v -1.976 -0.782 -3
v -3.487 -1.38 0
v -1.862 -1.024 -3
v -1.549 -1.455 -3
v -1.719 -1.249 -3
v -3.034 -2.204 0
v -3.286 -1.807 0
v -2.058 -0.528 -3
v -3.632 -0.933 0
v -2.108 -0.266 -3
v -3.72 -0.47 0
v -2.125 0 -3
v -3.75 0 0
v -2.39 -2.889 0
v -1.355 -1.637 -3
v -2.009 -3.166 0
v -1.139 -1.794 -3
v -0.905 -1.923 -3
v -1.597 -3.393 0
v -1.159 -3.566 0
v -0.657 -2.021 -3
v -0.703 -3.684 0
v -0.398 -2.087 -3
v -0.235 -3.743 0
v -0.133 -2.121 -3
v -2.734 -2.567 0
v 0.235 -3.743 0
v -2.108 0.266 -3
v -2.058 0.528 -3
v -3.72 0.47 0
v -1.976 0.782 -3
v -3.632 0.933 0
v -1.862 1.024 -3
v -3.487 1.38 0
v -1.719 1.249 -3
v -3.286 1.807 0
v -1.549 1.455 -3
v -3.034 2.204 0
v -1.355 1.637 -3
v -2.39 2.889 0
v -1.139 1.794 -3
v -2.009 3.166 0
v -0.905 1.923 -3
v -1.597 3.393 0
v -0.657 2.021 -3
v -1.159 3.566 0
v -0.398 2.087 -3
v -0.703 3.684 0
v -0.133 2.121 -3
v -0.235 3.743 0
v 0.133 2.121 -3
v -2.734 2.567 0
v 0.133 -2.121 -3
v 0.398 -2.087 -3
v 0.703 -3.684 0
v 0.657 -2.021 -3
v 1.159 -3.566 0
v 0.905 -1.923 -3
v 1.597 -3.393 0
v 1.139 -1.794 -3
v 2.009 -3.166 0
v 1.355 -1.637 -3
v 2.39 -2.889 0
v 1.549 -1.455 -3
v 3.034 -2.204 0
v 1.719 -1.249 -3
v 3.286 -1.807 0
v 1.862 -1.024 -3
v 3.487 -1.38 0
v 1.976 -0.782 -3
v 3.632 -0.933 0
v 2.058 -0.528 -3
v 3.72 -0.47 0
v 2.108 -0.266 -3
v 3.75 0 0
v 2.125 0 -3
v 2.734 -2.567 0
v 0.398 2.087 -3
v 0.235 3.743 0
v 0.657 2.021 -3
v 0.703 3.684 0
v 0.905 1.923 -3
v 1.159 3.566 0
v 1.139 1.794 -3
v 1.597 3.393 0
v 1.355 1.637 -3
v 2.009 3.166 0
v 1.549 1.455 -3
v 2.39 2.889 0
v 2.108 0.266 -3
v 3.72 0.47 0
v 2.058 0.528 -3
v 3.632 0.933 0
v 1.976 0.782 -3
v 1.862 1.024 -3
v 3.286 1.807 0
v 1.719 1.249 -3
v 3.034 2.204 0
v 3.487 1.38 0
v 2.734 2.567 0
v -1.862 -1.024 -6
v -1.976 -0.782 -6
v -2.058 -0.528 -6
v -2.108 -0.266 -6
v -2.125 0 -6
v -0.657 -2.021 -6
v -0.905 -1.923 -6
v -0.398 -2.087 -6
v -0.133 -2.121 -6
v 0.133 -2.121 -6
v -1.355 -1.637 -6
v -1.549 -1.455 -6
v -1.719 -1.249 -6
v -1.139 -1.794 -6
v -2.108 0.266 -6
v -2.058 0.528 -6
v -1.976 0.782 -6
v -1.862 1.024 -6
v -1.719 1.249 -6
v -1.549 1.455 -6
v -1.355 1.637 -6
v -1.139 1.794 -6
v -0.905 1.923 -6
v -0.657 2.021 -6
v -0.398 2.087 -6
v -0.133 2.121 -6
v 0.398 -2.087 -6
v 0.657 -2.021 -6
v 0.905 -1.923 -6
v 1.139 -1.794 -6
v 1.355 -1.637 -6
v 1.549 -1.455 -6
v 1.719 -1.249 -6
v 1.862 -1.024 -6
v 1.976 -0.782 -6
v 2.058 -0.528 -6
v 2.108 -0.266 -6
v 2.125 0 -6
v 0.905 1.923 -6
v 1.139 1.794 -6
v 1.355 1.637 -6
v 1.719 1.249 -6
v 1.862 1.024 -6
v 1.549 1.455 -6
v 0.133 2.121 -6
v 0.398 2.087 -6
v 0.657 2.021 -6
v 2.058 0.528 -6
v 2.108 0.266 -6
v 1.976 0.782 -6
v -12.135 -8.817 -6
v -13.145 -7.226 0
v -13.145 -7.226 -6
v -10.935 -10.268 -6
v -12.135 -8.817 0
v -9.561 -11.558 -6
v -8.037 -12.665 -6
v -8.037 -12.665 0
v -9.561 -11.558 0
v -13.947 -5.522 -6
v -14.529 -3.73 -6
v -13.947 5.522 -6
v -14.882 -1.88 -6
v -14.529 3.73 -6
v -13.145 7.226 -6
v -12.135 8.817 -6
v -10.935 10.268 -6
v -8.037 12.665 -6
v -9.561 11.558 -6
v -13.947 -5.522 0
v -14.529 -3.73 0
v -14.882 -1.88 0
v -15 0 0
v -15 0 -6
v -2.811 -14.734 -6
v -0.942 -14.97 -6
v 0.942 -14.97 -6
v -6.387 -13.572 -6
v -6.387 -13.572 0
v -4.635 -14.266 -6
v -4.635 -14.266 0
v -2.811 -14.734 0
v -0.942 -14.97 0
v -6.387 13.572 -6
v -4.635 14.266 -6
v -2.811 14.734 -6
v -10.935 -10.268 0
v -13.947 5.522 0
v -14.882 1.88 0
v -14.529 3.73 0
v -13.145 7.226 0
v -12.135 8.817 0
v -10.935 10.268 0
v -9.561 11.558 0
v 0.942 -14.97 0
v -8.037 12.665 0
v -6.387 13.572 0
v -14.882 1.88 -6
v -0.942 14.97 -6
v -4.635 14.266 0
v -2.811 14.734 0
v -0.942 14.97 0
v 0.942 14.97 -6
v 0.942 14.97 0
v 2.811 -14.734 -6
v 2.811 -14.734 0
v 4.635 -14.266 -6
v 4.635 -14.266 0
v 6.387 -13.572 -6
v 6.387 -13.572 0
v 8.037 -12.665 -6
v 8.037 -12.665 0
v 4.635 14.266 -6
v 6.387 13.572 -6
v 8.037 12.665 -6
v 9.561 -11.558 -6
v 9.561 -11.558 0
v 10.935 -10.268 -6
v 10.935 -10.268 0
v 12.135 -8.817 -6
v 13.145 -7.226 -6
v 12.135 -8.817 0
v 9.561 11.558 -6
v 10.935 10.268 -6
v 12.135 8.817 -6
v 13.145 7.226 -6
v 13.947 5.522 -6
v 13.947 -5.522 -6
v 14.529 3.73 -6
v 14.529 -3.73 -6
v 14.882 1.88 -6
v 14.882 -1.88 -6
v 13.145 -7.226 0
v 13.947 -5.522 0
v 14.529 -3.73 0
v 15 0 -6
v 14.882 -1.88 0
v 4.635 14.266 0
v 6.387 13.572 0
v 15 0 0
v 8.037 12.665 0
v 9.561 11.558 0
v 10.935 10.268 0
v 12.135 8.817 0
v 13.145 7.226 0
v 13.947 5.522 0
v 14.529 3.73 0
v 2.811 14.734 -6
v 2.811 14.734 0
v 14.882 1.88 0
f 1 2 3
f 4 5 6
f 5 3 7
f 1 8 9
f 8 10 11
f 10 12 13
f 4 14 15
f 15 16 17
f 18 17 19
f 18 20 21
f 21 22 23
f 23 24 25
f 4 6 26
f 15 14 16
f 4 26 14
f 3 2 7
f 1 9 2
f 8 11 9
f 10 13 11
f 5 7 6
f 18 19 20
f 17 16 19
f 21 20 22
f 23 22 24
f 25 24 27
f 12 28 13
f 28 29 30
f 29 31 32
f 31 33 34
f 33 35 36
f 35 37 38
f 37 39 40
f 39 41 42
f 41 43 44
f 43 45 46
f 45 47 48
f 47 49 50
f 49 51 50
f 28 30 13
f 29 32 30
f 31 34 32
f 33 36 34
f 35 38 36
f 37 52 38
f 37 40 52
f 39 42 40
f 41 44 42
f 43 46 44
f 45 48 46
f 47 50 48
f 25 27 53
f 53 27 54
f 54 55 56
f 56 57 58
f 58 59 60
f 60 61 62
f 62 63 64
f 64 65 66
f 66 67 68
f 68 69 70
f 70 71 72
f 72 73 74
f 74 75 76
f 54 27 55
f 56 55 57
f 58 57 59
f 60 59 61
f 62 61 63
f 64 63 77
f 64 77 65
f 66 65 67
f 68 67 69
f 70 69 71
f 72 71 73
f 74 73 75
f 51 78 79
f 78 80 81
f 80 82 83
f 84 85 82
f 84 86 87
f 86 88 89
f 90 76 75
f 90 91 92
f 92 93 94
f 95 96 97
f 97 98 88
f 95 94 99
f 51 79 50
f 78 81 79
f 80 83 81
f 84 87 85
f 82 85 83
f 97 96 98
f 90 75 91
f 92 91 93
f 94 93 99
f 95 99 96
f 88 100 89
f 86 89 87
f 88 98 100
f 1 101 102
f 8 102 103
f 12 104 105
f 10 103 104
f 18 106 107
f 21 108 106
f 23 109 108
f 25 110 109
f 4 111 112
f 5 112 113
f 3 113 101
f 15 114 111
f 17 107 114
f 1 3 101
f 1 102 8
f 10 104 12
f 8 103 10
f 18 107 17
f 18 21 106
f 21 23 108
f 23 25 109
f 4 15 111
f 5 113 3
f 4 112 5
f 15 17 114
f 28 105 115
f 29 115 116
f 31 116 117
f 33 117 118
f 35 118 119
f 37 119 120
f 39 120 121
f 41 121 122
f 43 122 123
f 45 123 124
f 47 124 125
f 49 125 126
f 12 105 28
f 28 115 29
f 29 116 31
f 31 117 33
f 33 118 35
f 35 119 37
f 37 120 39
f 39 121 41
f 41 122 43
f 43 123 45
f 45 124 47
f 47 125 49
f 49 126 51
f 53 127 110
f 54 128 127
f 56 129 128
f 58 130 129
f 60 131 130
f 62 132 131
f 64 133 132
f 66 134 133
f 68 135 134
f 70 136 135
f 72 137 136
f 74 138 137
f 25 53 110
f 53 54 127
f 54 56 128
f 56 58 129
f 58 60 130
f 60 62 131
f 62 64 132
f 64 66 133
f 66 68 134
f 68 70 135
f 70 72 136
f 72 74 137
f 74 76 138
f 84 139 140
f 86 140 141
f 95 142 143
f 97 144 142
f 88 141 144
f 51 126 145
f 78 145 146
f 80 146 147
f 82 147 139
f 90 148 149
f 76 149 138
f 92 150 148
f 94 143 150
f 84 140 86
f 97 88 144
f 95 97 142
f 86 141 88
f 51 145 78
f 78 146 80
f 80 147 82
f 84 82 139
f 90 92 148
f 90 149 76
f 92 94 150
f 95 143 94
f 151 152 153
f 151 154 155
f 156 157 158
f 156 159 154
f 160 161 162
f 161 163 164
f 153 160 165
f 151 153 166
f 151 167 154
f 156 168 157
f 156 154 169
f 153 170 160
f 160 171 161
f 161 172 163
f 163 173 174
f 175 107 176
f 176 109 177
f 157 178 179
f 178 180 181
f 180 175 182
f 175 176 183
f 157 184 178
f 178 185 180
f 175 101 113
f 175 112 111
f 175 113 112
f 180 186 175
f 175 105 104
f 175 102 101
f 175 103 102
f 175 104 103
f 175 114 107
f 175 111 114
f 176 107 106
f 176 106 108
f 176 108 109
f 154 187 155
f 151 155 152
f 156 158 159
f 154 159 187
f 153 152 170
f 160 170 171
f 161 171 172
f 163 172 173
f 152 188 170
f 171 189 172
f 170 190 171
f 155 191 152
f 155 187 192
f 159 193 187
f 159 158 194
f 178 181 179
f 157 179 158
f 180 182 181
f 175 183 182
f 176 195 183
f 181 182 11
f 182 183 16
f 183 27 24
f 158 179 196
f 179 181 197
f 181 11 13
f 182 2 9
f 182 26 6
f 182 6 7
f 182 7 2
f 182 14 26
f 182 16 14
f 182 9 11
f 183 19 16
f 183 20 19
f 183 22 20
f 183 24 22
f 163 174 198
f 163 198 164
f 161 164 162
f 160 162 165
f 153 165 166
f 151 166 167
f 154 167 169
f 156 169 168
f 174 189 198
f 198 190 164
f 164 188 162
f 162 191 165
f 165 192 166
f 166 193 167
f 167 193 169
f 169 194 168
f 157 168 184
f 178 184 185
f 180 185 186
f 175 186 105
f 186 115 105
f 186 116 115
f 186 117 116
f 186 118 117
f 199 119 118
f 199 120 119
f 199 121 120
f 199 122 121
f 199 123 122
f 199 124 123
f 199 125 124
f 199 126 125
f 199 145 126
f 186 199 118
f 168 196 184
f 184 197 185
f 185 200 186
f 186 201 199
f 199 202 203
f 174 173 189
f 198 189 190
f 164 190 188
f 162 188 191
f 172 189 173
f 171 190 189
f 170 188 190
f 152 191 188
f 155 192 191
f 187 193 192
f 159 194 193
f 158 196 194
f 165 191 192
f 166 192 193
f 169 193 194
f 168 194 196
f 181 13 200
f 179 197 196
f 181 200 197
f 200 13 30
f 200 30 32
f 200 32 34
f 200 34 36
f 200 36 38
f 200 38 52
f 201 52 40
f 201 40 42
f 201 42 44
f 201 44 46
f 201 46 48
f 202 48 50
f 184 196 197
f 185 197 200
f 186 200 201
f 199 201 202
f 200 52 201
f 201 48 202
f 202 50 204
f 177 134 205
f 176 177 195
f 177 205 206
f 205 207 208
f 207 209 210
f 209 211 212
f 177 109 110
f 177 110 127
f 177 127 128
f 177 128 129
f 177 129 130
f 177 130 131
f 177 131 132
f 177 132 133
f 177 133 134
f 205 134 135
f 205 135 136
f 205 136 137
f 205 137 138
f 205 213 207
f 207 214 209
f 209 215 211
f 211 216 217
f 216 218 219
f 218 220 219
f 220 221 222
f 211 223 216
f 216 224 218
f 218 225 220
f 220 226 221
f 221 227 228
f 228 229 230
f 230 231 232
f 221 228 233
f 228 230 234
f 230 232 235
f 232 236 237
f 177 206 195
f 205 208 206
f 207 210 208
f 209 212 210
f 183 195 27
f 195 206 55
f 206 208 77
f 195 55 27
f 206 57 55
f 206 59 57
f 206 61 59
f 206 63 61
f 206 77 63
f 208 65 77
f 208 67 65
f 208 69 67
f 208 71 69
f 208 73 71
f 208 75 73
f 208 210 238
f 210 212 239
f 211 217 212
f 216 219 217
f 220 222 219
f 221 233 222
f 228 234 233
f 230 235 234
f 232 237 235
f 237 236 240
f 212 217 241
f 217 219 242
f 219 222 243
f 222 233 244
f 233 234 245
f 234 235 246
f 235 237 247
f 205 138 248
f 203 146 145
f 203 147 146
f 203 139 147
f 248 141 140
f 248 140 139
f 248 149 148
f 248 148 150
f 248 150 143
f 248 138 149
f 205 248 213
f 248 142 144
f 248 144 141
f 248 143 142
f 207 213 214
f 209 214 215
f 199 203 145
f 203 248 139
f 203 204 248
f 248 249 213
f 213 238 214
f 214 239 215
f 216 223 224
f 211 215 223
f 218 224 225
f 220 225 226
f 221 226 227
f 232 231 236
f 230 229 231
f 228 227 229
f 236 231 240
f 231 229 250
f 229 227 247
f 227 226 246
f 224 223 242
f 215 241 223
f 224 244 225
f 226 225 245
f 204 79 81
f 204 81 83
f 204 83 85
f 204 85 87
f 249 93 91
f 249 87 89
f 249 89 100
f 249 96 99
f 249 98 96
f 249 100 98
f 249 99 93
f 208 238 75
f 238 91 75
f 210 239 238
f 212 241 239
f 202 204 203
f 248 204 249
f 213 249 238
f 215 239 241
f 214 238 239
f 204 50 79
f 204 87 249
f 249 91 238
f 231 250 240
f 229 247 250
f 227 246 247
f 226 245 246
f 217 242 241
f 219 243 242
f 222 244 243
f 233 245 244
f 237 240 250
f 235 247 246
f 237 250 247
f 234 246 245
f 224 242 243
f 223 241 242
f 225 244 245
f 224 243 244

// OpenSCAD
$fn = 50;

difference() {
	union() {
		translate(v = [0, 0, -6.0]) {
			cylinder(h = 6, r = 15.0);
		}
	}
	union() {
		translate(v = [0, 0, 0]) {
			rotate(a = [0, 0, 0]) {
				difference() {
					union() {
						translate(v = [0, 0, -9.0]) {
							cylinder(h = 9, r = 2.0);
						}
						translate(v = [0, 0, -3]) {
							cylinder(h = 3, r1 = 2.125, r2 = 3.75);
						}
						translate(v = [0, 0, -9.0]) {
							cylinder(h = 9, r = 2.125);
						}
						translate(v = [0, 0, -9.0]) {
							cylinder(h = 9, r = 2.0);
						}
					}
					union();
				}
			}
		}
	}
}
